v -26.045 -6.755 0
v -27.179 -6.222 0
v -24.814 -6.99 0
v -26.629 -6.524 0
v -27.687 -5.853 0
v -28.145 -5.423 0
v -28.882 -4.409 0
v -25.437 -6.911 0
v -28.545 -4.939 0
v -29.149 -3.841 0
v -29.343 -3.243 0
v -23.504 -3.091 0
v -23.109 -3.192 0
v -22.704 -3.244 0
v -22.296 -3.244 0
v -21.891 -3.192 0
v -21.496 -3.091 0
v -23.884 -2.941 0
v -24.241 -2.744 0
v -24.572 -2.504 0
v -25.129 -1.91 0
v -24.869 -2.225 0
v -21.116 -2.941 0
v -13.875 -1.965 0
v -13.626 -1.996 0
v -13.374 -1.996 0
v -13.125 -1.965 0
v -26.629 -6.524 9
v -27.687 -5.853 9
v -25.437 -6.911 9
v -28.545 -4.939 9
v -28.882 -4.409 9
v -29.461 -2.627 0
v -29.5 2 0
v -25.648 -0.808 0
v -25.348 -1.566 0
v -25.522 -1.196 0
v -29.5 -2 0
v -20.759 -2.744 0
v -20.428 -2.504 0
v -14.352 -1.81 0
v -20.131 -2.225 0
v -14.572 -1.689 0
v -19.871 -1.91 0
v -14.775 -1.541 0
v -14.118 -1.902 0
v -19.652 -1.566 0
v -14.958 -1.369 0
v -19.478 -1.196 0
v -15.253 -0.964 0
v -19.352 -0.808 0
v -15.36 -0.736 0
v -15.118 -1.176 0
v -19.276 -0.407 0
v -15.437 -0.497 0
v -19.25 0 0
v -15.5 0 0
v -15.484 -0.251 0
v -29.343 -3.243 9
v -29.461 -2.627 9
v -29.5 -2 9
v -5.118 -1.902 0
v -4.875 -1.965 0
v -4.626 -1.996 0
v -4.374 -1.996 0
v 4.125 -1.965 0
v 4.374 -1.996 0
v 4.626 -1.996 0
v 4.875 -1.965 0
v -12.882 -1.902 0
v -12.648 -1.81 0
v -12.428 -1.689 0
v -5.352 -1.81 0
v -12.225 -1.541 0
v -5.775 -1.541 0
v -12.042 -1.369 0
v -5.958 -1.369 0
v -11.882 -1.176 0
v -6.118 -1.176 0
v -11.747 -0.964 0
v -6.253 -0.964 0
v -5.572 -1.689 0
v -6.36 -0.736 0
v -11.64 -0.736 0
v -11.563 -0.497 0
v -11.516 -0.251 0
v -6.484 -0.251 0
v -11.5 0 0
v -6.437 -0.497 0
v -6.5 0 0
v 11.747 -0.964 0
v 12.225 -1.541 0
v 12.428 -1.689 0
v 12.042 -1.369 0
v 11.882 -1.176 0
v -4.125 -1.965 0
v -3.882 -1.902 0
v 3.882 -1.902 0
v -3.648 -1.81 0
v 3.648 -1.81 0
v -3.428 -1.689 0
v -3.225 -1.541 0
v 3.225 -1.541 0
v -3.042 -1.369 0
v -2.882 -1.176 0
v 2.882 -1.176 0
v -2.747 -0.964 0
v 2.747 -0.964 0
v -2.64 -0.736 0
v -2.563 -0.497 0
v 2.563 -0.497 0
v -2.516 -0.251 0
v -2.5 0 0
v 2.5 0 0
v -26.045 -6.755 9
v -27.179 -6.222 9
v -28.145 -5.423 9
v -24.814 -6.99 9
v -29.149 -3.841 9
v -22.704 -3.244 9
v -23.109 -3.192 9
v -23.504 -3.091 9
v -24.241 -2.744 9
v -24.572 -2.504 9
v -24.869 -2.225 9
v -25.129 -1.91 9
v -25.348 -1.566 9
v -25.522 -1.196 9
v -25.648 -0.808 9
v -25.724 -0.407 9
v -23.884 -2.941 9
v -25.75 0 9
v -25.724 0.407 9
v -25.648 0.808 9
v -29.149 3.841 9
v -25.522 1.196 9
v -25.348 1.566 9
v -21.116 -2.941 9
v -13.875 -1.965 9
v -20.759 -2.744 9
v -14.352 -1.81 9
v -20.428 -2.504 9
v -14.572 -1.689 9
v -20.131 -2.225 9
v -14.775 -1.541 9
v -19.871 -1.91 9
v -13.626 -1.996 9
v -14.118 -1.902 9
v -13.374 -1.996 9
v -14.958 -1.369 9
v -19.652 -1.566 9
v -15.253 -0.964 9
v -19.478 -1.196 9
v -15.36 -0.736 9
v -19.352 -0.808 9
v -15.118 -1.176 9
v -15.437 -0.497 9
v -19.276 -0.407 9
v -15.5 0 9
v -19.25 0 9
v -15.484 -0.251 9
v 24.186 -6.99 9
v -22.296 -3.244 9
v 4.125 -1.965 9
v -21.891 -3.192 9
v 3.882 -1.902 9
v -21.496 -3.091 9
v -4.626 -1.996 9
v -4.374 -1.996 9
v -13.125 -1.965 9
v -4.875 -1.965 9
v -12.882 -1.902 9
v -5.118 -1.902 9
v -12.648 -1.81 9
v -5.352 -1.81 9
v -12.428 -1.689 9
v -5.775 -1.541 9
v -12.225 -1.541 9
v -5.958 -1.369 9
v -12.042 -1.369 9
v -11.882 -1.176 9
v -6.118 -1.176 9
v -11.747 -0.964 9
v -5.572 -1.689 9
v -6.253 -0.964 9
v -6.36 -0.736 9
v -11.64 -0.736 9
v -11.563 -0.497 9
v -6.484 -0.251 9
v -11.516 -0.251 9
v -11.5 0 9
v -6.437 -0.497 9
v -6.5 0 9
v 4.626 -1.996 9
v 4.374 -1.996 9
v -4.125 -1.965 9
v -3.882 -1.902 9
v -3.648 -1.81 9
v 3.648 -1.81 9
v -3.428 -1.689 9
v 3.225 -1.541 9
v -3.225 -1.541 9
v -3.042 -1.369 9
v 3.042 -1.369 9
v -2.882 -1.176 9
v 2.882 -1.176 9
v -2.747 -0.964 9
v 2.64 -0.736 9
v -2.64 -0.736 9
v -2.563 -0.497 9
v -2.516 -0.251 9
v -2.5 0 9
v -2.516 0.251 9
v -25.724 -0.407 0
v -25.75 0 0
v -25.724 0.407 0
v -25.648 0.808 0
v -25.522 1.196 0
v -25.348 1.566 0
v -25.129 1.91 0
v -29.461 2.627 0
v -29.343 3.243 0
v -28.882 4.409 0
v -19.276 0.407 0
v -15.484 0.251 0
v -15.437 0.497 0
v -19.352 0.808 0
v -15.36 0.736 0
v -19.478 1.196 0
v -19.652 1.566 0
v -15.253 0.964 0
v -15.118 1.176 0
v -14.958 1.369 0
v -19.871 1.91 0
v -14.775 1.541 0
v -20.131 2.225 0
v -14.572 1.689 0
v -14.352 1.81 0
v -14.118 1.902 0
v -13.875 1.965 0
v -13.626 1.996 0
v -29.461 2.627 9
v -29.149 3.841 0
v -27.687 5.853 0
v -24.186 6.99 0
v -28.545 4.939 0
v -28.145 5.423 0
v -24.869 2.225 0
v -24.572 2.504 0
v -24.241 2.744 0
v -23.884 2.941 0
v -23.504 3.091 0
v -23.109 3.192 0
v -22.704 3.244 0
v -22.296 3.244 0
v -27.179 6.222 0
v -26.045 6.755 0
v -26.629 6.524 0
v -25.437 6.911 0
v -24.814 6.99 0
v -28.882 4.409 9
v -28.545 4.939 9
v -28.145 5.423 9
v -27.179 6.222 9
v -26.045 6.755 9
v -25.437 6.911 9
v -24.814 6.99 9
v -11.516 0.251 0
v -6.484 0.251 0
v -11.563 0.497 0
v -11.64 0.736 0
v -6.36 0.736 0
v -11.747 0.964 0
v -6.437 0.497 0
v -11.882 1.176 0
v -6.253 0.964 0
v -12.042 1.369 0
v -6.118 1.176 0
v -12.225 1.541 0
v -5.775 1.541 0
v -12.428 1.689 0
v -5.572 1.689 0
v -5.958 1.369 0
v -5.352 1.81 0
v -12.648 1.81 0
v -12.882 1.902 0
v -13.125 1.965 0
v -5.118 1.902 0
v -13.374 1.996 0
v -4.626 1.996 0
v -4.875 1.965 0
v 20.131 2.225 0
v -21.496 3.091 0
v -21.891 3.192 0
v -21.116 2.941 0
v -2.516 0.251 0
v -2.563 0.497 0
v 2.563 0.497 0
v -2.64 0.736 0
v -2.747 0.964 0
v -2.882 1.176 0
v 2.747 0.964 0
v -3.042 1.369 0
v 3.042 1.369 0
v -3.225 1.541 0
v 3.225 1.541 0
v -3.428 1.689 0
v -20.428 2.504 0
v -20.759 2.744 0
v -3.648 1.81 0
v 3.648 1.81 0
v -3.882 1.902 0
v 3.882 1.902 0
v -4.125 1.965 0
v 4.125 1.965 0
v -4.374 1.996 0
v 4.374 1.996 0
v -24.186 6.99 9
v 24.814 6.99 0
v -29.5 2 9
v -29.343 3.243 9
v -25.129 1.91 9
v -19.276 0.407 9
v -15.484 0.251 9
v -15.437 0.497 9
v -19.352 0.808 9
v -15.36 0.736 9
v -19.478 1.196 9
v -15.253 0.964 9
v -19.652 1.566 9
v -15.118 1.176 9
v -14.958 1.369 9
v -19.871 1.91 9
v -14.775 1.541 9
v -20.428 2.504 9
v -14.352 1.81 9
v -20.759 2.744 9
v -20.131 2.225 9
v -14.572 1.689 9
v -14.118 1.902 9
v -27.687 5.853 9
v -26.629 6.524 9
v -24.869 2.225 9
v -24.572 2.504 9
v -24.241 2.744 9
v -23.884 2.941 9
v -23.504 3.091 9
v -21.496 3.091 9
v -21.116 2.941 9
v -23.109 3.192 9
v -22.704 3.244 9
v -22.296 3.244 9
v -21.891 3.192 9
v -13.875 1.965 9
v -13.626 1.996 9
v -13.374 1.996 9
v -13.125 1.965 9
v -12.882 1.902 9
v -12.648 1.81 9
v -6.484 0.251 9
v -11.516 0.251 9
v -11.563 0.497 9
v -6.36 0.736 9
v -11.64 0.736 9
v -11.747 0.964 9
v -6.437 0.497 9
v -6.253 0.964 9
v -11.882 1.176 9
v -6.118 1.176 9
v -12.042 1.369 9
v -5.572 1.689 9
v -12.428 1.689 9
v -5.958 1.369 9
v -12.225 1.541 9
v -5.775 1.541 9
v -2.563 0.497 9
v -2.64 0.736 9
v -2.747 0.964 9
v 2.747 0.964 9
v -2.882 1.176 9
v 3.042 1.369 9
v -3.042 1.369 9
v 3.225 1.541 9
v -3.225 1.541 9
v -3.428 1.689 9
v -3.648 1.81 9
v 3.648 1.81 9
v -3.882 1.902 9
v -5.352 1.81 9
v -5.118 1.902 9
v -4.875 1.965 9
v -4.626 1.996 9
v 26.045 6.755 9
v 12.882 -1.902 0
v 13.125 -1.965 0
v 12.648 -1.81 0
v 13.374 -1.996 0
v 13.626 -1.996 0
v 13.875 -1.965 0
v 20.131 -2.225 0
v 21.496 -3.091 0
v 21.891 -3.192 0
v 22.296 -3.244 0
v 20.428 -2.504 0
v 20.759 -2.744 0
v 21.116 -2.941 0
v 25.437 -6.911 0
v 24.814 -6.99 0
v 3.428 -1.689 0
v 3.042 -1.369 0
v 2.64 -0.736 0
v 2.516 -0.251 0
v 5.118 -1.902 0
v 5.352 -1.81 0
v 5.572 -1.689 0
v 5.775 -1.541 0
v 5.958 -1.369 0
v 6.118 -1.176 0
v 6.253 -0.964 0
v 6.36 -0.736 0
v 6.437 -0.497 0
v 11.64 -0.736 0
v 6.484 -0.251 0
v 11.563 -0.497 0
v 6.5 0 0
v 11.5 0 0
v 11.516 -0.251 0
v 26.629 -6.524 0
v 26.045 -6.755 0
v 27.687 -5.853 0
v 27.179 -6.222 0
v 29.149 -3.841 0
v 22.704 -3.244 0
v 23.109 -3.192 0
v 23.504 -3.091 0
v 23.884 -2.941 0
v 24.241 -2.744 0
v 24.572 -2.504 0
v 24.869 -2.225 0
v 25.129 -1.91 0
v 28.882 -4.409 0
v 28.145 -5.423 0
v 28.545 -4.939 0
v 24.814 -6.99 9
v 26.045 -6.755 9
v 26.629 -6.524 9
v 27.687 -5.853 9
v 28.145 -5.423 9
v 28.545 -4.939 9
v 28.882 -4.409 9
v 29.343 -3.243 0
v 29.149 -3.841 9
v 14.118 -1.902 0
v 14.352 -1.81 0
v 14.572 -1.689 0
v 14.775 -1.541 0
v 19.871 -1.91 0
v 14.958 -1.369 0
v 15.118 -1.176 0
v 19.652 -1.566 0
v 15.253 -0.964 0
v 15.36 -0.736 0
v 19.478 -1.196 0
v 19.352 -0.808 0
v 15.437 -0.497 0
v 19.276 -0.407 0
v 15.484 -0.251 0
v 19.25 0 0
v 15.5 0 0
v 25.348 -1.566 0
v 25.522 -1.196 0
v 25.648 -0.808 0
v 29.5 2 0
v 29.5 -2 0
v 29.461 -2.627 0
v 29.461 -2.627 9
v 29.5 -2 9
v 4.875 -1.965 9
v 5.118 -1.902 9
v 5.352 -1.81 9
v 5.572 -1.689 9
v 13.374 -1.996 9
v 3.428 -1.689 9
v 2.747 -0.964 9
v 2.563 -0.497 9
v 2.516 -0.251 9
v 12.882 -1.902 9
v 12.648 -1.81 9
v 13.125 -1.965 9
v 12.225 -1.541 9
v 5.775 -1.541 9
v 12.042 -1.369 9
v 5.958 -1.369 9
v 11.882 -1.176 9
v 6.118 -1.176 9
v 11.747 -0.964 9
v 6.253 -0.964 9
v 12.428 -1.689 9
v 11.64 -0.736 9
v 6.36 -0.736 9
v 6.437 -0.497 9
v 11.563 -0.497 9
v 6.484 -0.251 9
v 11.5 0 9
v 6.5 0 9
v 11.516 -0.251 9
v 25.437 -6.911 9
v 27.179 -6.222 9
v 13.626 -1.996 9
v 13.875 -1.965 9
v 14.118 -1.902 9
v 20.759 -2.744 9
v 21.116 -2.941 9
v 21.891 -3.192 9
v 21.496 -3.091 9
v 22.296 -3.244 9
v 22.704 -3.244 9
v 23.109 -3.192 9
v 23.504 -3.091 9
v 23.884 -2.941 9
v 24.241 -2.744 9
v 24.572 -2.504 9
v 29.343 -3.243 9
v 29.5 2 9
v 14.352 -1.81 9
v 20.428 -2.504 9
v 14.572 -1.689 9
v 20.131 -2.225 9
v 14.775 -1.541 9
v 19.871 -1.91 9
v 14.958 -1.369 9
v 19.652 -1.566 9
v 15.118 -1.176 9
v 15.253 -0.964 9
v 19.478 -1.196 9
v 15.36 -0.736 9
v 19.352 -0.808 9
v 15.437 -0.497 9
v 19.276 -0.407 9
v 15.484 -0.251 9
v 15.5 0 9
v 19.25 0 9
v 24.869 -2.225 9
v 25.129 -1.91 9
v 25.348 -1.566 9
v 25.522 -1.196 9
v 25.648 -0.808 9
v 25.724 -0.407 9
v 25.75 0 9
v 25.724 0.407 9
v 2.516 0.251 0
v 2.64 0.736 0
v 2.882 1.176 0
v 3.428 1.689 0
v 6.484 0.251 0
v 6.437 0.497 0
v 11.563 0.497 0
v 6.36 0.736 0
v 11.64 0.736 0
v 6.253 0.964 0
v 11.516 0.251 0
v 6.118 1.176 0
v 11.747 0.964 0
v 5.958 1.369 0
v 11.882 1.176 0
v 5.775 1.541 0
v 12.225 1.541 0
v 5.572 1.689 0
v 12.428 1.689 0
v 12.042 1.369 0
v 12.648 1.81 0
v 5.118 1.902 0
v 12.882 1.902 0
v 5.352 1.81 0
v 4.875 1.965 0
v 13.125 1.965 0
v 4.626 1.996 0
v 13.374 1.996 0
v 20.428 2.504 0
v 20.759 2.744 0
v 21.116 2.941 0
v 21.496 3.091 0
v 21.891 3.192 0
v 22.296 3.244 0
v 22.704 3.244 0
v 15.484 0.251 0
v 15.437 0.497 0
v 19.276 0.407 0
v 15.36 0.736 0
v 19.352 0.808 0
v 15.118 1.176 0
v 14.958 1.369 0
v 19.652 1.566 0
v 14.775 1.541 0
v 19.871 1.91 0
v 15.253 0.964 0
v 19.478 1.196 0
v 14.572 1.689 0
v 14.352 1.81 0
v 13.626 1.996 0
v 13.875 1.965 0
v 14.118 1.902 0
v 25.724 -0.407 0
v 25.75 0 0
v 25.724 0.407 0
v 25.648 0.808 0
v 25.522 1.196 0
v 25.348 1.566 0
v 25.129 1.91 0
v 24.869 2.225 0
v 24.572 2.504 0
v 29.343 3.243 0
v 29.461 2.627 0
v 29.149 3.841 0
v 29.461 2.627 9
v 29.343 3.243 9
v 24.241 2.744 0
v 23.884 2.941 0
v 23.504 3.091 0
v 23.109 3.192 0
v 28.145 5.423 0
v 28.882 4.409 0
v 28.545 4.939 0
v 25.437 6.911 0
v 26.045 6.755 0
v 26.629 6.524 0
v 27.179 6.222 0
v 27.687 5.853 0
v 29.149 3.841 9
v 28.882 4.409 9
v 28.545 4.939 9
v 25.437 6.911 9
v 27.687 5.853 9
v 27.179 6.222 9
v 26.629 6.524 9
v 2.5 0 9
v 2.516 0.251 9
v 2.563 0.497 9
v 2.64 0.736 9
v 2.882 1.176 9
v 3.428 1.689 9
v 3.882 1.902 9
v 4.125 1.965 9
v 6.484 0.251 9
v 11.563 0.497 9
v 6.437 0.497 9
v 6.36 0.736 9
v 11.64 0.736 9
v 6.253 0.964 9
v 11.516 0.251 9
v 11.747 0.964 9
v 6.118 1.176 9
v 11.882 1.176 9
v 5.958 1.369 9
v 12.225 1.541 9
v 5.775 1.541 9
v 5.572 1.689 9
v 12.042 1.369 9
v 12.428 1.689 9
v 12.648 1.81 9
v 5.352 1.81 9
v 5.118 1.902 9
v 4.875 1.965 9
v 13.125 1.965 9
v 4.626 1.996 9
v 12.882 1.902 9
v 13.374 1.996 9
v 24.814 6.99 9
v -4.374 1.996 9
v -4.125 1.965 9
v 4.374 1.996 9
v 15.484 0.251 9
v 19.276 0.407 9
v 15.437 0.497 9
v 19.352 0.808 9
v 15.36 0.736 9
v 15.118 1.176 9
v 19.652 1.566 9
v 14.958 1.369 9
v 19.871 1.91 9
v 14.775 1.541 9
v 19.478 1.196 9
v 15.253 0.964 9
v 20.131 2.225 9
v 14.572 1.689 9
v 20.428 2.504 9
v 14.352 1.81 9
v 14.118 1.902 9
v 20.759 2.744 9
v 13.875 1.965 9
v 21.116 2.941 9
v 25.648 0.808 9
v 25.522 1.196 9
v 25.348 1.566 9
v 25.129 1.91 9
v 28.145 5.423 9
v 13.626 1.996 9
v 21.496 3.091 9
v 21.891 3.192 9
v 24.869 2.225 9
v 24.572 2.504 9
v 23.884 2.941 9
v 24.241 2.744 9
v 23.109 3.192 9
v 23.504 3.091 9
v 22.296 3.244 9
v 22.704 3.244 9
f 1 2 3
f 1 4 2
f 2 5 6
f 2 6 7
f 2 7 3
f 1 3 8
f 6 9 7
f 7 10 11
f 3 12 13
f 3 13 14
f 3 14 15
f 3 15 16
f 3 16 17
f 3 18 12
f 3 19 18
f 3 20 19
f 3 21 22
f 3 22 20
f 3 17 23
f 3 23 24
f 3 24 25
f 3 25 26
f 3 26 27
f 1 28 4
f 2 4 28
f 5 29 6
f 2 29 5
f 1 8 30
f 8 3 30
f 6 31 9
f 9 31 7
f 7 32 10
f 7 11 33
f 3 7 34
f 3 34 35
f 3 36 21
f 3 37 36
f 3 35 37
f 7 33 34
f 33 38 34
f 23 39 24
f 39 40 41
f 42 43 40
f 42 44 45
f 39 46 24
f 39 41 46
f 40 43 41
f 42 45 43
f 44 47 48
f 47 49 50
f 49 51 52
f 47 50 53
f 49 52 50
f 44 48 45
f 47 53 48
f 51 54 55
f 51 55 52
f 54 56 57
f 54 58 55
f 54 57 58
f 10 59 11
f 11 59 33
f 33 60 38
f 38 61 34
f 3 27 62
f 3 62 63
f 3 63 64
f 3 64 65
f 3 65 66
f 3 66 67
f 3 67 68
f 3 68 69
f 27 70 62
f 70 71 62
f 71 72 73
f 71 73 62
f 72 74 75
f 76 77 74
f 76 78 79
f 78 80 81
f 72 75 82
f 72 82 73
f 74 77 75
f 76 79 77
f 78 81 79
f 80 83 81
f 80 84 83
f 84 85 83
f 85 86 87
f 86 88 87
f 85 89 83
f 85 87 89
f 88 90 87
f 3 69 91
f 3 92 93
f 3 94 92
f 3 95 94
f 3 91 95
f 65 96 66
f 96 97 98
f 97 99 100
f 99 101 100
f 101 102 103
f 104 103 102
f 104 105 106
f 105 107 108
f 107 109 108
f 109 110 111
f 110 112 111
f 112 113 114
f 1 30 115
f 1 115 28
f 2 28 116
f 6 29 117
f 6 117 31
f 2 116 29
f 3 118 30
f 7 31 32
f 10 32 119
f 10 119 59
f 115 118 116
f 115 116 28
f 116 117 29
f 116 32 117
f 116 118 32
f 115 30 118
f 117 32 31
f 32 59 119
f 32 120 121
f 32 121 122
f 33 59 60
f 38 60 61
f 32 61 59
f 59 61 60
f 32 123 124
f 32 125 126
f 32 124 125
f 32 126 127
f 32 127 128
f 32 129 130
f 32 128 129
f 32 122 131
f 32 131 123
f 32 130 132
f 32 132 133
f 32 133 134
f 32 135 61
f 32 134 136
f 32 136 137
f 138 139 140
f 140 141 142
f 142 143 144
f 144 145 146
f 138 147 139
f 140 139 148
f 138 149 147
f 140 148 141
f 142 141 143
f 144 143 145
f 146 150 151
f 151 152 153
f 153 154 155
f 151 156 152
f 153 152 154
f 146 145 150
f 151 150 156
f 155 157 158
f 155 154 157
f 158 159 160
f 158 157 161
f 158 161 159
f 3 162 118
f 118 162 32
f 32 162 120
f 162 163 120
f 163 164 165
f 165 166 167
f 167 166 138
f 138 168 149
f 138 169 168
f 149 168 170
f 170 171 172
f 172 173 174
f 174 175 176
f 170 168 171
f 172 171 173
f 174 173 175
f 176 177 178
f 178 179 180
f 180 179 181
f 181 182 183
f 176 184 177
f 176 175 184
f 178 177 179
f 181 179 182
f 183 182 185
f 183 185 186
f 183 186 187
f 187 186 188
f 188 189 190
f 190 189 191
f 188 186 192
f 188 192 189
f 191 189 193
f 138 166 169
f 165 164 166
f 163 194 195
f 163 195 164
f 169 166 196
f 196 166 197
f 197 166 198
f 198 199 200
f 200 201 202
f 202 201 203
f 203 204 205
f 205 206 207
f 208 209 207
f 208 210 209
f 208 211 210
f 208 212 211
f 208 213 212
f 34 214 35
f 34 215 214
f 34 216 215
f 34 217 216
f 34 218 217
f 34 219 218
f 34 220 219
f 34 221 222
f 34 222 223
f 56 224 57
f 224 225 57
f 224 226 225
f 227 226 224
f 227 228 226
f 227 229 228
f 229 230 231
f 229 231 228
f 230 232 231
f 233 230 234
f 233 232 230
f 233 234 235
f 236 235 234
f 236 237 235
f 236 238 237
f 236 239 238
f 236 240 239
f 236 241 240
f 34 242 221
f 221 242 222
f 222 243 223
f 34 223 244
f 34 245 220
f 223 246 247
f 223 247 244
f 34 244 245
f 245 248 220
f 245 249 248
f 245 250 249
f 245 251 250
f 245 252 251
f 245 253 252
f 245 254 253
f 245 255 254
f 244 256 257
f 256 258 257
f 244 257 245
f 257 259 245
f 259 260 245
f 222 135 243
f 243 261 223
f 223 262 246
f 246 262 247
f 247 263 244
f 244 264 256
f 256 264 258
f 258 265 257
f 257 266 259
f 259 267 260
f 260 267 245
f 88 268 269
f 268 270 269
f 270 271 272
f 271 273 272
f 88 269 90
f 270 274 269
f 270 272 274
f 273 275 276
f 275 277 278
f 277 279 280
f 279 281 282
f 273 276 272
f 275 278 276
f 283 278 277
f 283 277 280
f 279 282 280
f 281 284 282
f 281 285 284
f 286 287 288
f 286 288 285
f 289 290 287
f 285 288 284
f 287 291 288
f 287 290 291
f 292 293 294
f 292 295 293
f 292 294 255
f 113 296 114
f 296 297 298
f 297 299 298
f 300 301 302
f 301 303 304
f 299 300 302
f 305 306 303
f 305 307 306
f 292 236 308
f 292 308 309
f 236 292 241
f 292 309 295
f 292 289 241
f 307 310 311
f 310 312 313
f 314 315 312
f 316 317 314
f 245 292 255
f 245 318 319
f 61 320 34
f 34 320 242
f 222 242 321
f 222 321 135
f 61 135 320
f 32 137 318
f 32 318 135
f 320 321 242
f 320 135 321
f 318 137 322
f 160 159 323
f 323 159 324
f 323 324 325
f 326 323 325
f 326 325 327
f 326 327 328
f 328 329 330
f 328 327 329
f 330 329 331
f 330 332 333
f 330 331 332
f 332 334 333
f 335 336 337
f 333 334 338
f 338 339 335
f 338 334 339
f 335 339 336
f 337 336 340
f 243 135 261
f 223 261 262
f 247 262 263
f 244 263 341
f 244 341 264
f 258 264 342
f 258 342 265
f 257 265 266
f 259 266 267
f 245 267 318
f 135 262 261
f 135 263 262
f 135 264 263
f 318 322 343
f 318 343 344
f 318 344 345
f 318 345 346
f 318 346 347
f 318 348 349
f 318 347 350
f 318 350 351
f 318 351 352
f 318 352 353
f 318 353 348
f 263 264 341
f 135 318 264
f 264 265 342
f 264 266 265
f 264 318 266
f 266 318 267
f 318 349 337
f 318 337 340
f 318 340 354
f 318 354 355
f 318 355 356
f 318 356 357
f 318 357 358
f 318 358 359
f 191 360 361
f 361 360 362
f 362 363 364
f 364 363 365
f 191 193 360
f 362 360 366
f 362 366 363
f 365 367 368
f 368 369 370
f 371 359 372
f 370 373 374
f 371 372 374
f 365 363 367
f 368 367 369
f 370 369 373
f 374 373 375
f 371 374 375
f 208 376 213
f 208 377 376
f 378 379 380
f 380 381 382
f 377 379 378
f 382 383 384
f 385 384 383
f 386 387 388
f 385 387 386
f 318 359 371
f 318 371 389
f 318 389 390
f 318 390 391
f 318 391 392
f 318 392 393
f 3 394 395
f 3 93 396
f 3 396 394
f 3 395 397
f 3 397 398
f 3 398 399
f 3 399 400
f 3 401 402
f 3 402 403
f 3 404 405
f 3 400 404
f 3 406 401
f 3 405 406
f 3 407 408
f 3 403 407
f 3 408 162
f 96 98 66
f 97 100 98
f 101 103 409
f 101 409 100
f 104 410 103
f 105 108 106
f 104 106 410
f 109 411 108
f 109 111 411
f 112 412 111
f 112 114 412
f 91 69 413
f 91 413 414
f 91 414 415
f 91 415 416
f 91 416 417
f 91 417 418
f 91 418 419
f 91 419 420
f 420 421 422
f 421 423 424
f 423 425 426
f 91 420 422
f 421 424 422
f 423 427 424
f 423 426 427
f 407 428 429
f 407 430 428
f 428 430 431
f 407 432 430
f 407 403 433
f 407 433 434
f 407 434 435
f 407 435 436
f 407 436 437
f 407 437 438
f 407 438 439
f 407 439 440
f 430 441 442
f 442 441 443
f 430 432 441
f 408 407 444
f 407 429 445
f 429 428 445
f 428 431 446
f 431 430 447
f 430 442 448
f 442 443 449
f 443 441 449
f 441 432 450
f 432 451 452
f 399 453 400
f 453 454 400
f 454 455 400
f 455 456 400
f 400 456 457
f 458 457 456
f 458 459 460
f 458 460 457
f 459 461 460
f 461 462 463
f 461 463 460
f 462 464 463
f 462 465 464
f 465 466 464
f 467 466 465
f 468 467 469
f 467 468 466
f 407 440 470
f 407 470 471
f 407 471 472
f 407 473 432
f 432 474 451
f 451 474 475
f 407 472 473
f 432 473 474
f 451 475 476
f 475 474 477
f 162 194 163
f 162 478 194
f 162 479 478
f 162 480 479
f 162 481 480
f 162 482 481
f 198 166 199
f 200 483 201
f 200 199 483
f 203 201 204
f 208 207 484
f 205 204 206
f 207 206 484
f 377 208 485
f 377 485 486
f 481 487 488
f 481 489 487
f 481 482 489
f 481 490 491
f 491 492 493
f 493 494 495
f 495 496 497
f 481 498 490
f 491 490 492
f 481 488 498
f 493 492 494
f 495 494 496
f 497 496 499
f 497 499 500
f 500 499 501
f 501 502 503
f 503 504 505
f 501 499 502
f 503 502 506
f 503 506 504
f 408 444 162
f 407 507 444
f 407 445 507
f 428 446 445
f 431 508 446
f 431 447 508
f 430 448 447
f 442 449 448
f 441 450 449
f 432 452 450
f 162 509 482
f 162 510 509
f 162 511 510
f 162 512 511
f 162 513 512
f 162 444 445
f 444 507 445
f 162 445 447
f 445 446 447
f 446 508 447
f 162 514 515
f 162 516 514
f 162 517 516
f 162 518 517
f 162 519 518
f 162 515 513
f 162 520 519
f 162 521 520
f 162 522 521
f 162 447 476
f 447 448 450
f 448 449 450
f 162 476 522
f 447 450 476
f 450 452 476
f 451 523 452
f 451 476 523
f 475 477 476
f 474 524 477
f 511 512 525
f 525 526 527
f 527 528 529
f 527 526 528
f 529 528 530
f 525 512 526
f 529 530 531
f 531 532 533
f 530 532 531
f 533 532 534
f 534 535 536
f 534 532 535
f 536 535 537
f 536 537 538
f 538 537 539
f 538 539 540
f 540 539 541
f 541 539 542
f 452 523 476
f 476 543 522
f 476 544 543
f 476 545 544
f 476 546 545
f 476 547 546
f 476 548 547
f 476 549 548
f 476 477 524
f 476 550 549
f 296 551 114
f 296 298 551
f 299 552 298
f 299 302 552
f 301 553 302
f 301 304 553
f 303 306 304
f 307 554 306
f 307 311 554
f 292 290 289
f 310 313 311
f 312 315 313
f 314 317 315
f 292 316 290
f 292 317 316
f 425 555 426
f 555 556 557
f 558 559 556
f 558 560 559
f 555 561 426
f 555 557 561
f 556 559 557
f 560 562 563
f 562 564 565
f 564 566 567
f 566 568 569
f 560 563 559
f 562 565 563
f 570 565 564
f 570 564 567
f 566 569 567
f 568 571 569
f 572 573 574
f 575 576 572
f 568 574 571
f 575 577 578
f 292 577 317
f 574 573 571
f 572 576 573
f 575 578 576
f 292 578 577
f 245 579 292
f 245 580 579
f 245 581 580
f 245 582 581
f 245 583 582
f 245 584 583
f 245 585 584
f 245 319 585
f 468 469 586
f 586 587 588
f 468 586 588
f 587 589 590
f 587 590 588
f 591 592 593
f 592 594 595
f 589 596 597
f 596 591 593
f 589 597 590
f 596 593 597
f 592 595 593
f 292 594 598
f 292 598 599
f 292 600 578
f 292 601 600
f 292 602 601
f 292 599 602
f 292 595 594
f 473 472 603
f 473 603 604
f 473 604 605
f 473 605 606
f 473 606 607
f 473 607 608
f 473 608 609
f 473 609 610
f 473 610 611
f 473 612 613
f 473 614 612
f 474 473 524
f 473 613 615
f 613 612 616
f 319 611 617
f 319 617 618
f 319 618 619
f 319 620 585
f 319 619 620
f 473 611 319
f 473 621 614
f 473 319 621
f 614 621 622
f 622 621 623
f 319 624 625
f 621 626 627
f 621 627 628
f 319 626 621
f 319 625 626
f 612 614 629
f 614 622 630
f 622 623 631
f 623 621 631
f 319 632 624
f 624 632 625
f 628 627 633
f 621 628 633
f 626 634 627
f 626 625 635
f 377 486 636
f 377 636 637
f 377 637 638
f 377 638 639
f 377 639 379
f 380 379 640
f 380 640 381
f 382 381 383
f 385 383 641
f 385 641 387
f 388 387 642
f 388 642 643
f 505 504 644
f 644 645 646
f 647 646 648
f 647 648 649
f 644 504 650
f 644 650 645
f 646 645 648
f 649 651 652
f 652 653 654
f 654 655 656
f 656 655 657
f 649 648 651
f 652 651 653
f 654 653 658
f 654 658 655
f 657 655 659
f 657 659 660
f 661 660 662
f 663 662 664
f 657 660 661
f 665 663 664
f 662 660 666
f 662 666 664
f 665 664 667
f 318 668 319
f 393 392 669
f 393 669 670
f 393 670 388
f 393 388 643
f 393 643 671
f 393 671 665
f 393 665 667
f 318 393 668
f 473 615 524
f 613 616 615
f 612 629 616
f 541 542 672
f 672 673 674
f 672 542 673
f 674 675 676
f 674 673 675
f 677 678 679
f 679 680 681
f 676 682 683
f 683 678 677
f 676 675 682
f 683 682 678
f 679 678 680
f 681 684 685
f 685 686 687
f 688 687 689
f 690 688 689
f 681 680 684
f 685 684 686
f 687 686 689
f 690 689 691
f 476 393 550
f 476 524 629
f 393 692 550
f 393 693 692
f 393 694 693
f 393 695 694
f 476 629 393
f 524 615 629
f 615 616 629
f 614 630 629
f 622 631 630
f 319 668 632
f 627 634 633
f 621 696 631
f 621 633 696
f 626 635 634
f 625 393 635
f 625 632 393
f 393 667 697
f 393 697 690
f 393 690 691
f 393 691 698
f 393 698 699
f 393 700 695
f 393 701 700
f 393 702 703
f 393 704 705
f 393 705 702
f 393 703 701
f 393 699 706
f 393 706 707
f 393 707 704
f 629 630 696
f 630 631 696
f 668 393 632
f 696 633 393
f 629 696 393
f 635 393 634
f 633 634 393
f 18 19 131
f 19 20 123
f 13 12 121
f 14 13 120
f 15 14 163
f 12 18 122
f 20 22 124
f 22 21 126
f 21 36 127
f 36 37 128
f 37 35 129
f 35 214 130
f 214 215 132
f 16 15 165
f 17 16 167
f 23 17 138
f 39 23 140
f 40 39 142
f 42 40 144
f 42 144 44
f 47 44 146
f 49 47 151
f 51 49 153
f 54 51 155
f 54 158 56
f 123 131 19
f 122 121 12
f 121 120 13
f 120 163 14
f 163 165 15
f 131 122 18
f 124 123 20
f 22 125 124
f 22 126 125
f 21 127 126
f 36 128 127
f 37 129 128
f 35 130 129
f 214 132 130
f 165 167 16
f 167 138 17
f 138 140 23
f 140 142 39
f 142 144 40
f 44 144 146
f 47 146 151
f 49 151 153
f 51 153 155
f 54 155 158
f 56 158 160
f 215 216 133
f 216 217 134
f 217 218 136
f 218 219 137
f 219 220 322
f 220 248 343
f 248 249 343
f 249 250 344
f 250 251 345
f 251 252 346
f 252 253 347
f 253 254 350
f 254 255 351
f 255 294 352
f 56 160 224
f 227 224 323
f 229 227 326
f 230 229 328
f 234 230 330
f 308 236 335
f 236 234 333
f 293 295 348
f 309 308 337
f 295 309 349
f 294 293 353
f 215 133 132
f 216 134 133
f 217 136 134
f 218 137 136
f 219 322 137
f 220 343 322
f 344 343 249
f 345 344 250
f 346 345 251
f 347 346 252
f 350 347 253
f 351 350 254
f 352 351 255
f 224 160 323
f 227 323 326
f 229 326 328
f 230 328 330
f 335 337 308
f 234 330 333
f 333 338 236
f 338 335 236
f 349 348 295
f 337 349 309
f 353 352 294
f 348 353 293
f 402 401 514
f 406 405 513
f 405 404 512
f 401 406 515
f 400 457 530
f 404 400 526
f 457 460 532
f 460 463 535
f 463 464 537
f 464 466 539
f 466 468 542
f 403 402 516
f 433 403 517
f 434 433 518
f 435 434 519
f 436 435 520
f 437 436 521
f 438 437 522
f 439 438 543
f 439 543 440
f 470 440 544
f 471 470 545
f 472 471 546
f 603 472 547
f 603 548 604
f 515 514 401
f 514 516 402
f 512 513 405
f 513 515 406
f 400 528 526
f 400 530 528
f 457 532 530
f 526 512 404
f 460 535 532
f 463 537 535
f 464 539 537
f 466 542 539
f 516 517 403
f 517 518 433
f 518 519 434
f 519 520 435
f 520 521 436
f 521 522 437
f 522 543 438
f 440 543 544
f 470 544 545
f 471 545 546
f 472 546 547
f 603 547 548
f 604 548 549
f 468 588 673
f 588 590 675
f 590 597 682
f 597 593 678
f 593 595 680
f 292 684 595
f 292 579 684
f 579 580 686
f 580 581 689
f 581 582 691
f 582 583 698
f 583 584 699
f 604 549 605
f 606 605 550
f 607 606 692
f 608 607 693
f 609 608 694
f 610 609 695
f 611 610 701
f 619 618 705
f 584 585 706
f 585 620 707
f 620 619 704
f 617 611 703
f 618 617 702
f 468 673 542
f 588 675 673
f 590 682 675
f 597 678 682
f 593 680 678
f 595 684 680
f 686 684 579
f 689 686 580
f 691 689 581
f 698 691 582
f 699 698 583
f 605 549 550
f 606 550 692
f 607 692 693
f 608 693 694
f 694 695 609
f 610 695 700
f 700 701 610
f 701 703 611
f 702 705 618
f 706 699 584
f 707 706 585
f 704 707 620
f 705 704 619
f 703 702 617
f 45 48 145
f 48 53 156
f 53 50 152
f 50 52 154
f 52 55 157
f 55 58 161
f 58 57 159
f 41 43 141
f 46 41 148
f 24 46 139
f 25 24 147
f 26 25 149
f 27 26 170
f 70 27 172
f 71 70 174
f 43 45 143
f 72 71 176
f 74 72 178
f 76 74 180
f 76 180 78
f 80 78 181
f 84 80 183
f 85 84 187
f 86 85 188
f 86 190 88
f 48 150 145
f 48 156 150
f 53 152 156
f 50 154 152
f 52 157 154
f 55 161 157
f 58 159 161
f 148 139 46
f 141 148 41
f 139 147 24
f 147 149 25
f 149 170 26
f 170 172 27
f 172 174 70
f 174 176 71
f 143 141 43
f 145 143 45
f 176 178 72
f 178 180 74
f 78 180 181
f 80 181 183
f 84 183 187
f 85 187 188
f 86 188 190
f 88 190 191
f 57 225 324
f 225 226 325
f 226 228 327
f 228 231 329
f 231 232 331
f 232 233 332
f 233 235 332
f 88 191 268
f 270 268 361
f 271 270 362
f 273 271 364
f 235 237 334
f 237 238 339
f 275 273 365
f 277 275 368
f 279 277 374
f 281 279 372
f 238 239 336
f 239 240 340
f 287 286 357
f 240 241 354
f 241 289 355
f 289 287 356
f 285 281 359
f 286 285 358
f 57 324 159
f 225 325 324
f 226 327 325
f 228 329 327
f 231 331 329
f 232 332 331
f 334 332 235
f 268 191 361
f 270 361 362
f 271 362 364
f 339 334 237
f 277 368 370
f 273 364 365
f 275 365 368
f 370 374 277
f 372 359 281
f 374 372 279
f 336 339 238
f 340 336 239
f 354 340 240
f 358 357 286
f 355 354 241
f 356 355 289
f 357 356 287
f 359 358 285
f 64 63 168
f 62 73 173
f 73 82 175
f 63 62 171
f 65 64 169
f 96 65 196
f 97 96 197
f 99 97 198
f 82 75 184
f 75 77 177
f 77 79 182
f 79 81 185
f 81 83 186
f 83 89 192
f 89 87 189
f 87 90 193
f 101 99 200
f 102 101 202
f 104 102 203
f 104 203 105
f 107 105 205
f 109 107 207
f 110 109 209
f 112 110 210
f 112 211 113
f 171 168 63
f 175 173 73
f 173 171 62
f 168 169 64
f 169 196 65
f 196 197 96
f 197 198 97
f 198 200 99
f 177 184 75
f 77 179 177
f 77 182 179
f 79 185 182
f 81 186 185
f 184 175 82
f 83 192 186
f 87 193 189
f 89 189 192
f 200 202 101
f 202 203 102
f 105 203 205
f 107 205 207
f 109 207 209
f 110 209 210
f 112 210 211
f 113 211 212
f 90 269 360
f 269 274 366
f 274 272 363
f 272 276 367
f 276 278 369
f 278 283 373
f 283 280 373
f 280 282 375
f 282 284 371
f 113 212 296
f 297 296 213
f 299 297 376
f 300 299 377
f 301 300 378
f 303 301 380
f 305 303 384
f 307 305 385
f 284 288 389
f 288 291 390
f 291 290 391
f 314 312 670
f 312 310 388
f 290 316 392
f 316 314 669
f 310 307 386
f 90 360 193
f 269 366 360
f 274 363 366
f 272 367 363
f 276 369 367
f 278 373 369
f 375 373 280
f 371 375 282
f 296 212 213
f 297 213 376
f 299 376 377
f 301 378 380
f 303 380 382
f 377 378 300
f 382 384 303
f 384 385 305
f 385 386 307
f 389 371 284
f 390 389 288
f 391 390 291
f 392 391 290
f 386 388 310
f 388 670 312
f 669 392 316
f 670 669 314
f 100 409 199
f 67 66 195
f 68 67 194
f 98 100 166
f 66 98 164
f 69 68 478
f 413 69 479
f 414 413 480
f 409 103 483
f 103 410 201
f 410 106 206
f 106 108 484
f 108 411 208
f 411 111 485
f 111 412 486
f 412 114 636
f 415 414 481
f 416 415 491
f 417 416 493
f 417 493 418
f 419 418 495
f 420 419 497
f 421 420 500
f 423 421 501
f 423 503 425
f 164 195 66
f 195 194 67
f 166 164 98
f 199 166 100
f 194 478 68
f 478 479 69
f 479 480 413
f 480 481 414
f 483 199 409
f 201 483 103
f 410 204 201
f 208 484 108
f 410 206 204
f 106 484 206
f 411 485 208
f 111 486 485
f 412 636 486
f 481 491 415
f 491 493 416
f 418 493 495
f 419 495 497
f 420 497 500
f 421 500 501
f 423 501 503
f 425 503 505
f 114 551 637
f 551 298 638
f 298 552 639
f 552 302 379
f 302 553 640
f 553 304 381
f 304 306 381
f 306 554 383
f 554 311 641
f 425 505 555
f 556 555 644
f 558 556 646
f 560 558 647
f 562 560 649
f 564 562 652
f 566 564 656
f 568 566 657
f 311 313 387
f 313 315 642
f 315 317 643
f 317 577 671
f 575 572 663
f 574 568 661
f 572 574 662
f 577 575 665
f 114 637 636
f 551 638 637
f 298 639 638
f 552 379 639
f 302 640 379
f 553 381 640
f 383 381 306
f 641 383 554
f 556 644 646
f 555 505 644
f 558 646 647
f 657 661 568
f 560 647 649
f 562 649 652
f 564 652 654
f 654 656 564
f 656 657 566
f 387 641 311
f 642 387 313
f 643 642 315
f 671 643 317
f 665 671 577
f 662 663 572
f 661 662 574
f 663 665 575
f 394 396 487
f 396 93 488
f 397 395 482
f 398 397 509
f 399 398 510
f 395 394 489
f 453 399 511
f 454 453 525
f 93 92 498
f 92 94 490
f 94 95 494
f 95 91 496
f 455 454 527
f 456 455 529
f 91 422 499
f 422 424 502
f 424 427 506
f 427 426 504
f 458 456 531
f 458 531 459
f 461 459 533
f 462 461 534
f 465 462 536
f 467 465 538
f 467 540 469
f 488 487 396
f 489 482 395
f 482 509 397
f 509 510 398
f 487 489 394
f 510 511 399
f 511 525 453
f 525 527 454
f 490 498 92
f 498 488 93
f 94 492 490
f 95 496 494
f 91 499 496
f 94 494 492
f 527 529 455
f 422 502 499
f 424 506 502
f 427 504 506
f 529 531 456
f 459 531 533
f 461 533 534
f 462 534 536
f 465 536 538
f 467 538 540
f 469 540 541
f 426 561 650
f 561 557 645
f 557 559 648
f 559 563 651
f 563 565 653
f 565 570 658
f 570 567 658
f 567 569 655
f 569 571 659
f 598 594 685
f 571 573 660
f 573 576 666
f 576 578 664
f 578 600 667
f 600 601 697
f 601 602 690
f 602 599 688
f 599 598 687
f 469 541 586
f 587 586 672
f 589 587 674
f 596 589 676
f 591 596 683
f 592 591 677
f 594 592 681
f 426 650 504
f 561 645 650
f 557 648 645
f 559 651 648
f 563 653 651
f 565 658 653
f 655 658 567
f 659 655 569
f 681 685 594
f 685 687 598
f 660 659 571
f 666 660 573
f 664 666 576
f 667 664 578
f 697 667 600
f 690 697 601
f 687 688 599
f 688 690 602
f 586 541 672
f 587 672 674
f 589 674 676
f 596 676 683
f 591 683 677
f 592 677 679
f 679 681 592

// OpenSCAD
$fn = 50;

difference() {
	union() {
		hull() {
			translate(v = [-24.5, 2.0, 0]) {
				cylinder(h = 9, r = 5);
			}
			translate(v = [24.5, 2.0, 0]) {
				cylinder(h = 9, r = 5);
			}
			translate(v = [-24.5, -2.0, 0]) {
				cylinder(h = 9, r = 5);
			}
			translate(v = [24.5, -2.0, 0]) {
				cylinder(h = 9, r = 5);
			}
		}
	}
	union() {
		translate(v = [-22.5, 0.0, 0]) {
			cylinder(h = 9, r = 3.25);
		}
		translate(v = [22.5, 0.0, 0]) {
			cylinder(h = 9, r = 3.25);
		}
		translate(v = [-13.5, 0, 0.0]) {
			cylinder(h = 9, r = 2.0);
		}
		translate(v = [-4.5, 0, 0.0]) {
			cylinder(h = 9, r = 2.0);
		}
		translate(v = [4.5, 0, 0.0]) {
			cylinder(h = 9, r = 2.0);
		}
		translate(v = [13.5, 0, 0.0]) {
			cylinder(h = 9, r = 2.0);
		}
	}
}
